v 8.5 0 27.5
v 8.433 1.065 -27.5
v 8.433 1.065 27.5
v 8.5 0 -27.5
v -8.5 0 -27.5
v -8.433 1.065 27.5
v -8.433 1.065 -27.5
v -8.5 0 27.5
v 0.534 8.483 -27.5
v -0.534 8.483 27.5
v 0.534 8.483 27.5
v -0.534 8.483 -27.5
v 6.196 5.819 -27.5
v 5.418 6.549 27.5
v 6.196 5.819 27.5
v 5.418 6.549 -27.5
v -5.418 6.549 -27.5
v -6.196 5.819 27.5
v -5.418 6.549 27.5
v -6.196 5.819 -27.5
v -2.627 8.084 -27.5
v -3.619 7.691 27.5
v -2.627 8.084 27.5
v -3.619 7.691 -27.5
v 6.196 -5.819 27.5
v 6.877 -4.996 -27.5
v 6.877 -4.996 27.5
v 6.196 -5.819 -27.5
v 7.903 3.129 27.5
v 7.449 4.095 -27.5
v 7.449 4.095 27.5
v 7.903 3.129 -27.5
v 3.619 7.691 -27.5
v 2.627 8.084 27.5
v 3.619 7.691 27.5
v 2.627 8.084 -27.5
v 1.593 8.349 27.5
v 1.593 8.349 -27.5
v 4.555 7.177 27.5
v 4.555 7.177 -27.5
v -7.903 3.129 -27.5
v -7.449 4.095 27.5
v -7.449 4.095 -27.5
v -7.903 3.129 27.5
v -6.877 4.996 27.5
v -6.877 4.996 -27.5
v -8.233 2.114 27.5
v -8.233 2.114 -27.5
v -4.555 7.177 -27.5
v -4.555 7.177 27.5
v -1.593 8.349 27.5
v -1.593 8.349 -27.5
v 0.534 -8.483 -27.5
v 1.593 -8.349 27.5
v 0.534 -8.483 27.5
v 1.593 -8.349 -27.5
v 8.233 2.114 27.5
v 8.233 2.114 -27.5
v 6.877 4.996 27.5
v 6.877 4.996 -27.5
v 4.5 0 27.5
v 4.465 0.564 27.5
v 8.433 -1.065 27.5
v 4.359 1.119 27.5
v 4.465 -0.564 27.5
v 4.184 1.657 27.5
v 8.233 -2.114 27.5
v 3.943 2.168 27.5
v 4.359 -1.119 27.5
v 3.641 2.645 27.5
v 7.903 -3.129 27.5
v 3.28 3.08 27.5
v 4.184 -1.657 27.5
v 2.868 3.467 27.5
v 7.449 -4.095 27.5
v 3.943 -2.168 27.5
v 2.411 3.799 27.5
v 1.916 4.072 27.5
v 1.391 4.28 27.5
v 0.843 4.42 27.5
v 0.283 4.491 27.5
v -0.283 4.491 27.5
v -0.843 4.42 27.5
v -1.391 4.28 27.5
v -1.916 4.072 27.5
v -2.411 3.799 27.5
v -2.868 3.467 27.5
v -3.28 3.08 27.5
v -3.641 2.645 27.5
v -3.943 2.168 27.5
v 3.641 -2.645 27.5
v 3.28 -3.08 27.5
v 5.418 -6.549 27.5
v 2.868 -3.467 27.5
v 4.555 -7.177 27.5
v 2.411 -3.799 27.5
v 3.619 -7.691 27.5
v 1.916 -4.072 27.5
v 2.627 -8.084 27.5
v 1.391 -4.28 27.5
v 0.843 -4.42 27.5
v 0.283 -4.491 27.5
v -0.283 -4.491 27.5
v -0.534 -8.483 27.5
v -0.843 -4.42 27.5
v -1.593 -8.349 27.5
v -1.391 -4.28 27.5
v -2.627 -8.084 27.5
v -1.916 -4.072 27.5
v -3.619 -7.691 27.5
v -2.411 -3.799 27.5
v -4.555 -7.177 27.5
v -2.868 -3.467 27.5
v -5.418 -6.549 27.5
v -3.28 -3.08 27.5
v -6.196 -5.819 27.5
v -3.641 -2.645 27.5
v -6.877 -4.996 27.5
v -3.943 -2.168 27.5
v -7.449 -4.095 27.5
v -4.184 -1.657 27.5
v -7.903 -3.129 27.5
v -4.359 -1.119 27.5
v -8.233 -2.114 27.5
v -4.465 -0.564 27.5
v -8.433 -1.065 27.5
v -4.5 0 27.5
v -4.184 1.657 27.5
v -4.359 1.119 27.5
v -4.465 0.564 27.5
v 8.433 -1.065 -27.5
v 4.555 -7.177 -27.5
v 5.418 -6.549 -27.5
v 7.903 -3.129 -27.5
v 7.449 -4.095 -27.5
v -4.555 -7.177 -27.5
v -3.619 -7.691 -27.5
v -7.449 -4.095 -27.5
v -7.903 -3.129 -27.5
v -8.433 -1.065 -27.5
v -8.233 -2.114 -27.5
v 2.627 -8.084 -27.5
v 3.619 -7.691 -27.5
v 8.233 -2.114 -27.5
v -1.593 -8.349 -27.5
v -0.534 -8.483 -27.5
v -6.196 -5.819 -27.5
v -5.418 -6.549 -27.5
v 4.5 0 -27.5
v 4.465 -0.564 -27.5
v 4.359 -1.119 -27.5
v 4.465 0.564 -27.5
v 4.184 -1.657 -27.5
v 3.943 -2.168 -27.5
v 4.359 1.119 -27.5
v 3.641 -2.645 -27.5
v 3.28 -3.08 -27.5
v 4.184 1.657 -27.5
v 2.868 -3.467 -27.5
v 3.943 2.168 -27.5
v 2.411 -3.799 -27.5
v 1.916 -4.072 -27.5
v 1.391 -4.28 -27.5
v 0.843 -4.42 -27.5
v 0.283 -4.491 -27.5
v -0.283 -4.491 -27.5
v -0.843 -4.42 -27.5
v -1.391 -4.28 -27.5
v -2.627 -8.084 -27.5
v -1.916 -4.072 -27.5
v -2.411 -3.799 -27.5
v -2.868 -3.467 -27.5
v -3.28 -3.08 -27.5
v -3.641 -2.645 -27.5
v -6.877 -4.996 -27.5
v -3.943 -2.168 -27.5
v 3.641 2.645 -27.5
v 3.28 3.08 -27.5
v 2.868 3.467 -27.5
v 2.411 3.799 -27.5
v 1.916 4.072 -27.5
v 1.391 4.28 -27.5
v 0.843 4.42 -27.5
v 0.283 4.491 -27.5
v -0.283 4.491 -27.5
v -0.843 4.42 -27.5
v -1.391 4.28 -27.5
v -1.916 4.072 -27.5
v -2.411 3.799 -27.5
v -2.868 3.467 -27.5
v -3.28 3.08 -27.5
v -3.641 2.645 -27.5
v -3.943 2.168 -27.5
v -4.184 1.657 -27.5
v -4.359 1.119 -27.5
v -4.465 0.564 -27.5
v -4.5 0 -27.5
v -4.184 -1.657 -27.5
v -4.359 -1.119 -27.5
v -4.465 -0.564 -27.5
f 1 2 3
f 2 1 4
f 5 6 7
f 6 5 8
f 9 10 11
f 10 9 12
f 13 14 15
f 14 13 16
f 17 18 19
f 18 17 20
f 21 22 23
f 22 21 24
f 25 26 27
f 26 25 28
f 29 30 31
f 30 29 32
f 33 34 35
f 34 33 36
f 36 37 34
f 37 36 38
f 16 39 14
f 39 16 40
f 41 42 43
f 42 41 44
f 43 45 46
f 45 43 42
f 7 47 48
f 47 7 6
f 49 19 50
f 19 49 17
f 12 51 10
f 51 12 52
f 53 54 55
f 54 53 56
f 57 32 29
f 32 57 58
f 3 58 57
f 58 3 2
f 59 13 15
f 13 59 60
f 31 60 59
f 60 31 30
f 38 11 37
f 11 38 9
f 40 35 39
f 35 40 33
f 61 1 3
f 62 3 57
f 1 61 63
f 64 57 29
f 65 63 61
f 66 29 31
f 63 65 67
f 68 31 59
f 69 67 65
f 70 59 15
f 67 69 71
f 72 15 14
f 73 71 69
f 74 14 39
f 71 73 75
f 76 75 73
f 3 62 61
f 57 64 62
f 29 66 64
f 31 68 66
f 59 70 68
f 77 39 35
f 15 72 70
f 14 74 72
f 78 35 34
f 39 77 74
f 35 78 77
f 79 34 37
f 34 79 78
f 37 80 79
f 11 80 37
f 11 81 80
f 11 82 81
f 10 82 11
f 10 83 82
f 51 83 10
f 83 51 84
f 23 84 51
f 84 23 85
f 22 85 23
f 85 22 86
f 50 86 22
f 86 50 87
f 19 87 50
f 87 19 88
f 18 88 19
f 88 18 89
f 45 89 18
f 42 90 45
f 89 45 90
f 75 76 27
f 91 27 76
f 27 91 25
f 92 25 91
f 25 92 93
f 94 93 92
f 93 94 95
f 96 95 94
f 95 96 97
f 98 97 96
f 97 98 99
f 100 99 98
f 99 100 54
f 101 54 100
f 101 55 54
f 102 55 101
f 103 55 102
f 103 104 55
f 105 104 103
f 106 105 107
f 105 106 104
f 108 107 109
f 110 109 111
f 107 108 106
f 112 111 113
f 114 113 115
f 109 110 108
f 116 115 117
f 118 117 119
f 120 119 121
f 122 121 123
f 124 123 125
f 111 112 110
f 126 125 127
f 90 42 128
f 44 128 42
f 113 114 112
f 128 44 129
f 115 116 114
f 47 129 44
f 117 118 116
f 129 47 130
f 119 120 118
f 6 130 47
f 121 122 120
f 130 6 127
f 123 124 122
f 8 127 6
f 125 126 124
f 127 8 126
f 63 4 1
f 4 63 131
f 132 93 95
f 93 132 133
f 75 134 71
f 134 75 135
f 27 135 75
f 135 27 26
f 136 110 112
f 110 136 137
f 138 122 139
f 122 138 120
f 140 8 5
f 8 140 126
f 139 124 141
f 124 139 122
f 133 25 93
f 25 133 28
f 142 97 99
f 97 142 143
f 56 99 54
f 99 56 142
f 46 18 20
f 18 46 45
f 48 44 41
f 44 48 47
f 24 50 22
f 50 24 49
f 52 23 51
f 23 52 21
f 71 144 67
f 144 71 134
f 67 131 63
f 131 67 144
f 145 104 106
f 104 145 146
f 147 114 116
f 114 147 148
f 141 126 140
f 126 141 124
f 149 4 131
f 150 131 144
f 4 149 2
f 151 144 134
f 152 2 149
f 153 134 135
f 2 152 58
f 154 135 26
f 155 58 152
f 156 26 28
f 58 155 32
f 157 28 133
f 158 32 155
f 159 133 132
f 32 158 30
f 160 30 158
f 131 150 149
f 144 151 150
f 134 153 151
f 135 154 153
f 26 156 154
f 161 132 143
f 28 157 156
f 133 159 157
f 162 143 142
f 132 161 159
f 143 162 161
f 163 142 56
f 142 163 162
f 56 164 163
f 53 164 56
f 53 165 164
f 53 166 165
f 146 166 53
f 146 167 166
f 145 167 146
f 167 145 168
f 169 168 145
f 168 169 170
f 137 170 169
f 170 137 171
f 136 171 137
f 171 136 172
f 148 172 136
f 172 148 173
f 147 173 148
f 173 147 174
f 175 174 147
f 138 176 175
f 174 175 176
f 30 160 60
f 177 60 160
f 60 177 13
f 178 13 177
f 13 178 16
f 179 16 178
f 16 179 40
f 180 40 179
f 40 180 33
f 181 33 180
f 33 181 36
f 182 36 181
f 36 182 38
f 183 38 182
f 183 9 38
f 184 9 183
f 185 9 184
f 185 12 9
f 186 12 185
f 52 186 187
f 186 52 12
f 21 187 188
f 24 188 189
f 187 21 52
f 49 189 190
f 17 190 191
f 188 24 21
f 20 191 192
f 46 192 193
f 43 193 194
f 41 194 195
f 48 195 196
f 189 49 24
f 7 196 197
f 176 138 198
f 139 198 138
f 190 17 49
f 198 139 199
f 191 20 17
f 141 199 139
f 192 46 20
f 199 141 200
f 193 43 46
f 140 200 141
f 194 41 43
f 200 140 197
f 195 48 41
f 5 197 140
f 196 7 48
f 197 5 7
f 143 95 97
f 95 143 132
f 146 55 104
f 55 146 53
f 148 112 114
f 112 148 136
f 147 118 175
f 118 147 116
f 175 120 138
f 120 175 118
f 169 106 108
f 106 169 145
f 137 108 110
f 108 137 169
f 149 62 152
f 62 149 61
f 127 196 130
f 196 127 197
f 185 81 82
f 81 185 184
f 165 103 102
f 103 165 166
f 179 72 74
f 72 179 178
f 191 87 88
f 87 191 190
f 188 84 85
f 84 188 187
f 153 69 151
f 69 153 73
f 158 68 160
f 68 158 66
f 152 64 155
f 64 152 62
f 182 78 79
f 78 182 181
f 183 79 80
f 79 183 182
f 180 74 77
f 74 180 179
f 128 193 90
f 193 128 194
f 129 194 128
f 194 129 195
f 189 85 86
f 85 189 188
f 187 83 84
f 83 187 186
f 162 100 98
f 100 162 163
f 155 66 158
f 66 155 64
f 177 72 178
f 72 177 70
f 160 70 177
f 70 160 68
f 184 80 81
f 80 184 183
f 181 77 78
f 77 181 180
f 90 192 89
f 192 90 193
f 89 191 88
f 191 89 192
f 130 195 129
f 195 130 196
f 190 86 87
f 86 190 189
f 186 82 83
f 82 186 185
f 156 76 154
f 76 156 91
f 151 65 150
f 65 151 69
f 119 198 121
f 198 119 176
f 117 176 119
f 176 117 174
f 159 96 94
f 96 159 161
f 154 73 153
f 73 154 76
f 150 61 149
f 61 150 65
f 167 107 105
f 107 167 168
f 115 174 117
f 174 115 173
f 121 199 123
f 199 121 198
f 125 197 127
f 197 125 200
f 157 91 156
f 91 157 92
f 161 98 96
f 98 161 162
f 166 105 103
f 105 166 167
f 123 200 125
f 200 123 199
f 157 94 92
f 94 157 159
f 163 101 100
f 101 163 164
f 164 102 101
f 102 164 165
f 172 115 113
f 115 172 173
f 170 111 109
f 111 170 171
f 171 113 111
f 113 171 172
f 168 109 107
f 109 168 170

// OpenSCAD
$fn = 50;


difference() {
	union() {
		translate(v = [0, 0, -27.5000000000]) {
			cylinder(h = 55, r = 8.5000000000);
		}
	}
	union() {
		translate(v = [0, 0, -100.0000000000]) {
			cylinder(h = 200, r = 4.5000000000);
		}
	}
}
